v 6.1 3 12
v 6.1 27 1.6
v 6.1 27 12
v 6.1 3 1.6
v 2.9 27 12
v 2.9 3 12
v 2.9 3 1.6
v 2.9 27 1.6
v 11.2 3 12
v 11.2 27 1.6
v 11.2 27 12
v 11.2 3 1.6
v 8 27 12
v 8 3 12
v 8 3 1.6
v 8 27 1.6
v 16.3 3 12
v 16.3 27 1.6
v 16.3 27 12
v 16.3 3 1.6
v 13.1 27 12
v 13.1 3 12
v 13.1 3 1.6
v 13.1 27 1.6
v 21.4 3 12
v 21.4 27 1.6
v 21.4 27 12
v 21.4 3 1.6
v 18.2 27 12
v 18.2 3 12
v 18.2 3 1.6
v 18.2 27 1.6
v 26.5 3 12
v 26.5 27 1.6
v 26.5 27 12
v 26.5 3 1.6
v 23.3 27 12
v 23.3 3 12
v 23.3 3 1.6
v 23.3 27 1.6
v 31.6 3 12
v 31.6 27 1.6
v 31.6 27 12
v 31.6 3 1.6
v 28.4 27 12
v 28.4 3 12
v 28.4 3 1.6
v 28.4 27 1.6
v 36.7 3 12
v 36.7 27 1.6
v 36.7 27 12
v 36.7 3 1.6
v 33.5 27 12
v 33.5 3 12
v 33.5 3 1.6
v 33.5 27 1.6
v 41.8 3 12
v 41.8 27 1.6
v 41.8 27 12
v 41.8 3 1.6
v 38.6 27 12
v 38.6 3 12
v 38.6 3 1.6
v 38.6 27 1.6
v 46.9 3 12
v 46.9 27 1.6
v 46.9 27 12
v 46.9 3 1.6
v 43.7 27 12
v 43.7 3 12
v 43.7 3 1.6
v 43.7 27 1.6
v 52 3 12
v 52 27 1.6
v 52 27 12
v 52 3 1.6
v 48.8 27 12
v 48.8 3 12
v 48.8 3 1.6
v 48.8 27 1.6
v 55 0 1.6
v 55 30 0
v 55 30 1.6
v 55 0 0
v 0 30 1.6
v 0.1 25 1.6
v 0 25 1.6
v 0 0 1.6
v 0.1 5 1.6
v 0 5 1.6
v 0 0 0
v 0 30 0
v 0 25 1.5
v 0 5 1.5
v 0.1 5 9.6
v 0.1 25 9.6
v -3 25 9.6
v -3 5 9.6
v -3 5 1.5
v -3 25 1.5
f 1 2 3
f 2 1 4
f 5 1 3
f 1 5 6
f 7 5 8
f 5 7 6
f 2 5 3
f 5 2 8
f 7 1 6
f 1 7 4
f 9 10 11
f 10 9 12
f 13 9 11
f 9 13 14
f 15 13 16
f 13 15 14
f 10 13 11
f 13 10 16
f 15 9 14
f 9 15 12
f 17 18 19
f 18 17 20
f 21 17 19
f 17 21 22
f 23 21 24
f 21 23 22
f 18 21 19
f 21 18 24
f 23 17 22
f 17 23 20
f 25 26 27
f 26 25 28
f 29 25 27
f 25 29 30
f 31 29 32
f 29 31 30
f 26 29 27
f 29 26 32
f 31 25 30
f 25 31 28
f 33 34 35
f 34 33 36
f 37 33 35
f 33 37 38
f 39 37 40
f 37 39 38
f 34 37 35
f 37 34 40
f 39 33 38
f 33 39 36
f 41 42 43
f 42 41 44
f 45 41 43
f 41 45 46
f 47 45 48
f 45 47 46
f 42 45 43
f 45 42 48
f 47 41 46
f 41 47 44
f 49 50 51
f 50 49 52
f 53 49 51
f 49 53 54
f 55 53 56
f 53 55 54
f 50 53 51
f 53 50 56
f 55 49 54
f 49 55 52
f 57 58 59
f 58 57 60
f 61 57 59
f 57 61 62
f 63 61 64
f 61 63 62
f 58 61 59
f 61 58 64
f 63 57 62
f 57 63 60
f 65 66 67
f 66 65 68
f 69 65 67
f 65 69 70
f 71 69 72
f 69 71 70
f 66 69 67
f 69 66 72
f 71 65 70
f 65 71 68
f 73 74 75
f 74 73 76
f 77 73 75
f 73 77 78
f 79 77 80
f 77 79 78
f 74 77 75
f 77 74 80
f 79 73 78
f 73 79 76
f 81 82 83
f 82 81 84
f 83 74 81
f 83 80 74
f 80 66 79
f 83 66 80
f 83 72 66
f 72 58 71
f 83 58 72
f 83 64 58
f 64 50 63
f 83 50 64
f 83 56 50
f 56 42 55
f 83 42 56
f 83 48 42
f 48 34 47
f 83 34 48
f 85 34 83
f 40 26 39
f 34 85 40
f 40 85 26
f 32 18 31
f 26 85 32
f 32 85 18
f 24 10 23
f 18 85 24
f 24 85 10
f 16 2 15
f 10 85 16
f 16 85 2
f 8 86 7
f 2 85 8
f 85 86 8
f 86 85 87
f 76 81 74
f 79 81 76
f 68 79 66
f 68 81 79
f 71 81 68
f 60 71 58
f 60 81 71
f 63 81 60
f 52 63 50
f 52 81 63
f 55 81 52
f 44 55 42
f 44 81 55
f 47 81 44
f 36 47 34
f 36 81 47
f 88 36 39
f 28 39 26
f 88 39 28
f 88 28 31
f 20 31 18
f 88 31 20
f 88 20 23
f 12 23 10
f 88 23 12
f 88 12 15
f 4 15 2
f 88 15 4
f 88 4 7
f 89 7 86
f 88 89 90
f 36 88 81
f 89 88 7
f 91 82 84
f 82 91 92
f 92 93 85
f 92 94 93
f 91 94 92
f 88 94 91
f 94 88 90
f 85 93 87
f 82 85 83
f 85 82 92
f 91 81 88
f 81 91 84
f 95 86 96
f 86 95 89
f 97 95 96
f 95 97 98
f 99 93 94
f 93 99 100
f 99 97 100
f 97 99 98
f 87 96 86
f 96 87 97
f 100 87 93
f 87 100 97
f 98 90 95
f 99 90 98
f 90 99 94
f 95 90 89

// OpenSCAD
// GODIYMODULES I2Chub / I2Cadapter (Amazon ASIN B0DGQBFSKL) fit-check mock.
// Units: mm. The marketplace listing supplies no mechanical drawing. This is
// a deliberately conservative envelope based on its ten 0.1 in I2C outlets
// and supplied XH2.54/straight/right-angle header options. Measure the
// delivered board and replace these dimensions before releasing a mount.

$fn = 32;
pcb_x = 55.0;
pcb_y = 30.0;
pcb_z = 1.6;

union() {
    cube([pcb_x, pcb_y, pcb_z]);
    for (x = [4.5 : 5.1 : 50.4])
        translate([x - 1.6, 3.0, pcb_z - 0.1]) cube([3.2, 24.0, 10.5]);
    translate([-3.0, 5.0, pcb_z - 0.1]) cube([3.1, 20.0, 8.1]);
}
